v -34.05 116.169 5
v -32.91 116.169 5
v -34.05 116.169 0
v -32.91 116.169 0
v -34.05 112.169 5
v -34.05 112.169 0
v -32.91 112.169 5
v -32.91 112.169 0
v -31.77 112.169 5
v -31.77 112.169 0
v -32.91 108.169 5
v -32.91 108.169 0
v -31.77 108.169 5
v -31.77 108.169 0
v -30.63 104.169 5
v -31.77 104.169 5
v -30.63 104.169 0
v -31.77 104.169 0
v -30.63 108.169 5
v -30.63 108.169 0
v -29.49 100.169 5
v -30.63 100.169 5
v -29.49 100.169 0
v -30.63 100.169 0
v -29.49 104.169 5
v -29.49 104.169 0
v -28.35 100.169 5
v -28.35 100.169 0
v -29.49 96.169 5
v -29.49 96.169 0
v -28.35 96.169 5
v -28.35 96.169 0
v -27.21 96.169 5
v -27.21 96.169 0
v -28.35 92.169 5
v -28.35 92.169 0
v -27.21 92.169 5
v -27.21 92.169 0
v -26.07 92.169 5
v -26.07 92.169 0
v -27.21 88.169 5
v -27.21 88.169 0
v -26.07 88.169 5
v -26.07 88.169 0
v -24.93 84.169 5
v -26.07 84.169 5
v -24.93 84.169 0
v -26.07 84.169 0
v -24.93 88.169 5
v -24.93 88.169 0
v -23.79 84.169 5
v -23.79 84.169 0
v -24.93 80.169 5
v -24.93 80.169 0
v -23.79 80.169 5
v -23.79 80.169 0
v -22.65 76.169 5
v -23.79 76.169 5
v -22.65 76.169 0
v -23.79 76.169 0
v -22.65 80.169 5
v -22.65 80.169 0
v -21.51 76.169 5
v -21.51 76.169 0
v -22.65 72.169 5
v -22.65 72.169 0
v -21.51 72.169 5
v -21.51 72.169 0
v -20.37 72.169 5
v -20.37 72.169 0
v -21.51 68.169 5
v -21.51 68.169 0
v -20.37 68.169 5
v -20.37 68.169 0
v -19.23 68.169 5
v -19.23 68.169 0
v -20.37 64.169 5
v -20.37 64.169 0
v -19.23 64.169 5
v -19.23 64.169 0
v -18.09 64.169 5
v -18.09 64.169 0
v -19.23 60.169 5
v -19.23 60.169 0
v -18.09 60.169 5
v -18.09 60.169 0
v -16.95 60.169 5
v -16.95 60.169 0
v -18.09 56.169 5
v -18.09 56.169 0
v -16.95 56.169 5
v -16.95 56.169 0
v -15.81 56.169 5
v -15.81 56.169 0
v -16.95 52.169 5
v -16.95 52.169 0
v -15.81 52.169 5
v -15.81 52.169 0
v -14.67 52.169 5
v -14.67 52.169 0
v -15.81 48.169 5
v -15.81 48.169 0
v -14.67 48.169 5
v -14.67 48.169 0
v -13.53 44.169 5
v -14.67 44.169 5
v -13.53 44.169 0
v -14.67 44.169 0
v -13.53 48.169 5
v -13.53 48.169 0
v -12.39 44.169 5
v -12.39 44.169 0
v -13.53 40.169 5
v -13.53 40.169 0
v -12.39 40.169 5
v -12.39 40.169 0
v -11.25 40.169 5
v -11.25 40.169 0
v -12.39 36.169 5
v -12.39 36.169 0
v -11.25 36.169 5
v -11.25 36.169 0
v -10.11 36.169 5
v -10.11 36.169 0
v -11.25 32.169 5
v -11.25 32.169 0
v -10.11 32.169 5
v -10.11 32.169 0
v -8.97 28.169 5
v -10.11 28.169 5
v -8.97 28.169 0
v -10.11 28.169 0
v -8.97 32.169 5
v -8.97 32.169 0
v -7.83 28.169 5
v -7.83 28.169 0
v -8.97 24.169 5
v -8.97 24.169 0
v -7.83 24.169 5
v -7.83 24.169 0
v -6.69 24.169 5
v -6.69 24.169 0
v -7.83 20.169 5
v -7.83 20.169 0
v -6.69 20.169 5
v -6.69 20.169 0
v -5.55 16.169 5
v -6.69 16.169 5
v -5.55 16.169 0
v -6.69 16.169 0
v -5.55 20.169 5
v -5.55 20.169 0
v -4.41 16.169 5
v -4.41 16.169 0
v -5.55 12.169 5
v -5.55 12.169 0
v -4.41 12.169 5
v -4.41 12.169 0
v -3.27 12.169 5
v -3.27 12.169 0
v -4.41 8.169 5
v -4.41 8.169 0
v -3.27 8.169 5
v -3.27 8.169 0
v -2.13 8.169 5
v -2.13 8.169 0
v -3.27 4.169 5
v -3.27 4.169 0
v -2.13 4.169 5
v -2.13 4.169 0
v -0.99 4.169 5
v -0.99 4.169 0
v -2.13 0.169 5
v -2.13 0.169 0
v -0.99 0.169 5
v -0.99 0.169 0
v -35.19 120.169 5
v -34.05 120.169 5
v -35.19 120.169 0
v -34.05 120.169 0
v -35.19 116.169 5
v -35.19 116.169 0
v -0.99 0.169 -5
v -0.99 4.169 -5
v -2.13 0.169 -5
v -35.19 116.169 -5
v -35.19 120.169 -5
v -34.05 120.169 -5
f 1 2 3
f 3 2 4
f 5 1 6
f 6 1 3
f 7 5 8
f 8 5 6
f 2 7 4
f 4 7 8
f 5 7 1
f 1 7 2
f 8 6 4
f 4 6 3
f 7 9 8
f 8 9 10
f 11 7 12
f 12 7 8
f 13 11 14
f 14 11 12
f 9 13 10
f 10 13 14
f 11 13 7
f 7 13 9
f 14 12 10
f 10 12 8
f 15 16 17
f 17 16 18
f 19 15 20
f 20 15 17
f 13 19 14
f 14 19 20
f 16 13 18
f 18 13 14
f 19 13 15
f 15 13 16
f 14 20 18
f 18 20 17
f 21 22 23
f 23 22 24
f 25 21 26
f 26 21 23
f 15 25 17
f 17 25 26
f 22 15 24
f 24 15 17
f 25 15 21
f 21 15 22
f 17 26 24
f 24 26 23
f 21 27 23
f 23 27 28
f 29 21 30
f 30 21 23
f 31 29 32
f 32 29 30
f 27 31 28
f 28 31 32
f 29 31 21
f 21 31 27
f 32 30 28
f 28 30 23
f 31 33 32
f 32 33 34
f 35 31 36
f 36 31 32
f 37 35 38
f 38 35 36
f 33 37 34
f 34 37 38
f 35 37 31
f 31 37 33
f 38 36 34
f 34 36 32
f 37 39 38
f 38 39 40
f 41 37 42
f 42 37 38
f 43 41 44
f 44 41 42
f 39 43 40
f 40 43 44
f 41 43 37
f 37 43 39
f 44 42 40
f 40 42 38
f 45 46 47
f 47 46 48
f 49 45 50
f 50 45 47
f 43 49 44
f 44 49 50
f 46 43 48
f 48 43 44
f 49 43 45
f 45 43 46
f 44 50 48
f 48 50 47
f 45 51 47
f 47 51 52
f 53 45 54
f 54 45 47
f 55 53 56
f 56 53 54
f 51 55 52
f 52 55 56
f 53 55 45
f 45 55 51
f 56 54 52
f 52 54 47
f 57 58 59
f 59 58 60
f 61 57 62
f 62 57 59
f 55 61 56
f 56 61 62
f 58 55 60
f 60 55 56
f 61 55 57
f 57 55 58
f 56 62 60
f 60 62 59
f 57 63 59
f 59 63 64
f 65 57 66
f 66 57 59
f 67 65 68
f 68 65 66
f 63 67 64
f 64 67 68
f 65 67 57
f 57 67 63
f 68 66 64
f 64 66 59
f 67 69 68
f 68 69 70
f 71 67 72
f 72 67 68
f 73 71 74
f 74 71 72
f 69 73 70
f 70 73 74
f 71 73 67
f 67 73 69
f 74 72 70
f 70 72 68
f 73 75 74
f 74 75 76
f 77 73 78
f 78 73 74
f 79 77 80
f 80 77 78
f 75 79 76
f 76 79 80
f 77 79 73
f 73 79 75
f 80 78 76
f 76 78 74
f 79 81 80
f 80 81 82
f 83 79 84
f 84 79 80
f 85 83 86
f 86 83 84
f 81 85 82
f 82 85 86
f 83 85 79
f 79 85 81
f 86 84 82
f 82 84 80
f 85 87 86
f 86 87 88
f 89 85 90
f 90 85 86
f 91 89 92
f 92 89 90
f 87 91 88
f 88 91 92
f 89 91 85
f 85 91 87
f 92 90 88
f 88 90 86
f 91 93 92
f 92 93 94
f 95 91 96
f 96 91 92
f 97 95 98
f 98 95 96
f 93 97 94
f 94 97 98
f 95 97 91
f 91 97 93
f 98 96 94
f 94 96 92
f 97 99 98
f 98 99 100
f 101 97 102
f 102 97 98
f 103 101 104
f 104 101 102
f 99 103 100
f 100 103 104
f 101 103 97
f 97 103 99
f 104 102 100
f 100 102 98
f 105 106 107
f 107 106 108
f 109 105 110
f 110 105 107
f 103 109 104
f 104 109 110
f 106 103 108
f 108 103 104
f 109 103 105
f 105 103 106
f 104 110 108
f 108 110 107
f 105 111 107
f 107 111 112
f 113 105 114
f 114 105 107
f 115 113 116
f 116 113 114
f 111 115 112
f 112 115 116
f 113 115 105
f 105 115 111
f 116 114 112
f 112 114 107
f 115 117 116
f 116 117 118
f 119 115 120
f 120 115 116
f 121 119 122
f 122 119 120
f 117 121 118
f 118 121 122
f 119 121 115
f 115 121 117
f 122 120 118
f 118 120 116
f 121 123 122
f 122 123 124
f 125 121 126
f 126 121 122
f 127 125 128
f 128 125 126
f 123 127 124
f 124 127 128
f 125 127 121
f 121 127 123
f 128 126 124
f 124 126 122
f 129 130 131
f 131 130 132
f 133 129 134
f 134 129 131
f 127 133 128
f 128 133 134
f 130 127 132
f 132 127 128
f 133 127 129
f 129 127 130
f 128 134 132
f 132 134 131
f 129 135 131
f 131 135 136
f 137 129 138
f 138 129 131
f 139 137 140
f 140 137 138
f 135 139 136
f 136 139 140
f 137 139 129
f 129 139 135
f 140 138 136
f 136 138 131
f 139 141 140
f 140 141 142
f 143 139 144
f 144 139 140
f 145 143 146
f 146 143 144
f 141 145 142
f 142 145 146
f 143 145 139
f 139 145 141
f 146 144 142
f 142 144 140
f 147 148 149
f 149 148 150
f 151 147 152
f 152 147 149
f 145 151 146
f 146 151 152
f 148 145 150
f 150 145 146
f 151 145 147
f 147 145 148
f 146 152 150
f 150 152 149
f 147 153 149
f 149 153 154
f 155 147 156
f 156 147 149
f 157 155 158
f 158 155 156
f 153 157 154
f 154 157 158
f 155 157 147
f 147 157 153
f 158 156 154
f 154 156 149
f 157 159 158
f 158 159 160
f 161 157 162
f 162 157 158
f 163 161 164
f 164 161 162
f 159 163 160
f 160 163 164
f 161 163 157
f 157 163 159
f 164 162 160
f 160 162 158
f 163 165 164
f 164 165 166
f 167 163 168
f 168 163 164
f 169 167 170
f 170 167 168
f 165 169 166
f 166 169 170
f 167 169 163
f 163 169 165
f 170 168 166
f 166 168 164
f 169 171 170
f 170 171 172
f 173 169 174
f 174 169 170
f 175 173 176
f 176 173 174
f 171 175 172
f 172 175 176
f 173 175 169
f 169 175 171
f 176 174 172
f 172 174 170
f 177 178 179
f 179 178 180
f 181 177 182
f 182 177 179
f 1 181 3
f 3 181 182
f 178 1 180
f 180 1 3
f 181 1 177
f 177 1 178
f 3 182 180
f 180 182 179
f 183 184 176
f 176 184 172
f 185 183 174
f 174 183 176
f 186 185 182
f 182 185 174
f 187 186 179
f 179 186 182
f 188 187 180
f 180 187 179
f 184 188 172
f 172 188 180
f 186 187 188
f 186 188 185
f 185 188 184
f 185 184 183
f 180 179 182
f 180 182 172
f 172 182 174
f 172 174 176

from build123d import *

# Parameters (mm, degrees)
SKETCH2_W              = 1.139995489
SKETCH2_H              = 4
BOSS_EXTRUDE1_DEPTH    = 5
SKETCH2_W_2            = 1.14
BOSS_EXTRUDE1_2_DEPTH  = 5
BOSS_EXTRUDE1_3_DEPTH  = 5
BOSS_EXTRUDE1_4_DEPTH  = 5
BOSS_EXTRUDE1_5_DEPTH  = 5
BOSS_EXTRUDE1_6_DEPTH  = 5
BOSS_EXTRUDE1_7_DEPTH  = 5
BOSS_EXTRUDE1_8_DEPTH  = 5
BOSS_EXTRUDE1_9_DEPTH  = 5
BOSS_EXTRUDE1_10_DEPTH = 5
BOSS_EXTRUDE1_11_DEPTH = 5
BOSS_EXTRUDE1_12_DEPTH = 5
BOSS_EXTRUDE1_13_DEPTH = 5
BOSS_EXTRUDE1_14_DEPTH = 5
BOSS_EXTRUDE1_15_DEPTH = 5
BOSS_EXTRUDE1_16_DEPTH = 5
BOSS_EXTRUDE1_17_DEPTH = 5
BOSS_EXTRUDE1_18_DEPTH = 5
BOSS_EXTRUDE1_19_DEPTH = 5
BOSS_EXTRUDE1_20_DEPTH = 5
BOSS_EXTRUDE1_21_DEPTH = 5
BOSS_EXTRUDE1_22_DEPTH = 5
BOSS_EXTRUDE1_23_DEPTH = 5
BOSS_EXTRUDE1_24_DEPTH = 5
BOSS_EXTRUDE1_25_DEPTH = 5
BOSS_EXTRUDE1_26_DEPTH = 5
BOSS_EXTRUDE1_27_DEPTH = 5
BOSS_EXTRUDE1_28_DEPTH = 5
BOSS_EXTRUDE1_29_DEPTH = 5
BOSS_EXTRUDE1_30_DEPTH = 5
BOSS_EXTRUDE3_DEPTH    = 5


with BuildPart() as part:
    # Sketch2 → Boss-Extrude1 (new body)
    with BuildSketch(Plane.XY):
        with Locations((-1.560223433, 2.169459459)):
            Rectangle(SKETCH2_W, SKETCH2_H)
    extrude(amount=BOSS_EXTRUDE1_DEPTH)


with BuildPart() as body_2:
    # Sketch2 → Boss-Extrude1 2 (new body)
    with BuildSketch(Plane.XY):
        with Locations((-34.620225688, 118.169459459)):
            Rectangle(SKETCH2_W_2, SKETCH2_H)
    extrude(amount=BOSS_EXTRUDE1_2_DEPTH)


with BuildPart() as body_3:
    # Sketch2 → Boss-Extrude1 3 (new body)
    with BuildSketch(Plane.XY):
        with Locations((-33.480225688, 114.169459459)):
            Rectangle(SKETCH2_W_2, SKETCH2_H)
    extrude(amount=BOSS_EXTRUDE1_3_DEPTH)


with BuildPart() as body_4:
    # Sketch2 → Boss-Extrude1 4 (new body)
    with BuildSketch(Plane.XY):
        with Locations((-32.340225688, 110.169459459)):
            Rectangle(SKETCH2_W_2, SKETCH2_H)
    extrude(amount=BOSS_EXTRUDE1_4_DEPTH)


with BuildPart() as body_5:
    # Sketch2 → Boss-Extrude1 5 (new body)
    with BuildSketch(Plane.XY):
        with Locations((-31.200225688, 106.169459459)):
            Rectangle(SKETCH2_W_2, SKETCH2_H)
    extrude(amount=BOSS_EXTRUDE1_5_DEPTH)


with BuildPart() as body_6:
    # Sketch2 → Boss-Extrude1 6 (new body)
    with BuildSketch(Plane.XY):
        with Locations((-30.060225688, 102.169459459)):
            Rectangle(SKETCH2_W_2, SKETCH2_H)
    extrude(amount=BOSS_EXTRUDE1_6_DEPTH)


with BuildPart() as body_7:
    # Sketch2 → Boss-Extrude1 7 (new body)
    with BuildSketch(Plane.XY):
        with Locations((-28.920225688, 98.169459459)):
            Rectangle(SKETCH2_W_2, SKETCH2_H)
    extrude(amount=BOSS_EXTRUDE1_7_DEPTH)


with BuildPart() as body_8:
    # Sketch2 → Boss-Extrude1 8 (new body)
    with BuildSketch(Plane.XY):
        with Locations((-27.780225688, 94.169459459)):
            Rectangle(SKETCH2_W_2, SKETCH2_H)
    extrude(amount=BOSS_EXTRUDE1_8_DEPTH)


with BuildPart() as body_9:
    # Sketch2 → Boss-Extrude1 9 (new body)
    with BuildSketch(Plane.XY):
        with Locations((-26.640225688, 90.169459459)):
            Rectangle(SKETCH2_W_2, SKETCH2_H)
    extrude(amount=BOSS_EXTRUDE1_9_DEPTH)


with BuildPart() as body_10:
    # Sketch2 → Boss-Extrude1 10 (new body)
    with BuildSketch(Plane.XY):
        with Locations((-25.500225688, 86.169459459)):
            Rectangle(SKETCH2_W_2, SKETCH2_H)
    extrude(amount=BOSS_EXTRUDE1_10_DEPTH)


with BuildPart() as body_11:
    # Sketch2 → Boss-Extrude1 11 (new body)
    with BuildSketch(Plane.XY):
        with Locations((-24.360225688, 82.169459459)):
            Rectangle(SKETCH2_W_2, SKETCH2_H)
    extrude(amount=BOSS_EXTRUDE1_11_DEPTH)


with BuildPart() as body_12:
    # Sketch2 → Boss-Extrude1 12 (new body)
    with BuildSketch(Plane.XY):
        with Locations((-23.220225688, 78.169459459)):
            Rectangle(SKETCH2_W_2, SKETCH2_H)
    extrude(amount=BOSS_EXTRUDE1_12_DEPTH)


with BuildPart() as body_13:
    # Sketch2 → Boss-Extrude1 13 (new body)
    with BuildSketch(Plane.XY):
        with Locations((-22.080225688, 74.169459459)):
            Rectangle(SKETCH2_W_2, SKETCH2_H)
    extrude(amount=BOSS_EXTRUDE1_13_DEPTH)


with BuildPart() as body_14:
    # Sketch2 → Boss-Extrude1 14 (new body)
    with BuildSketch(Plane.XY):
        with Locations((-20.940225688, 70.169459459)):
            Rectangle(SKETCH2_W_2, SKETCH2_H)
    extrude(amount=BOSS_EXTRUDE1_14_DEPTH)


with BuildPart() as body_15:
    # Sketch2 → Boss-Extrude1 15 (new body)
    with BuildSketch(Plane.XY):
        with Locations((-19.800225688, 66.169459459)):
            Rectangle(SKETCH2_W_2, SKETCH2_H)
    extrude(amount=BOSS_EXTRUDE1_15_DEPTH)


with BuildPart() as body_16:
    # Sketch2 → Boss-Extrude1 16 (new body)
    with BuildSketch(Plane.XY):
        with Locations((-18.660225688, 62.169459459)):
            Rectangle(SKETCH2_W_2, SKETCH2_H)
    extrude(amount=BOSS_EXTRUDE1_16_DEPTH)


with BuildPart() as body_17:
    # Sketch2 → Boss-Extrude1 17 (new body)
    with BuildSketch(Plane.XY):
        with Locations((-17.520225688, 58.169459459)):
            Rectangle(SKETCH2_W_2, SKETCH2_H)
    extrude(amount=BOSS_EXTRUDE1_17_DEPTH)


with BuildPart() as body_18:
    # Sketch2 → Boss-Extrude1 18 (new body)
    with BuildSketch(Plane.XY):
        with Locations((-16.380225688, 54.169459459)):
            Rectangle(SKETCH2_W_2, SKETCH2_H)
    extrude(amount=BOSS_EXTRUDE1_18_DEPTH)


with BuildPart() as body_19:
    # Sketch2 → Boss-Extrude1 19 (new body)
    with BuildSketch(Plane.XY):
        with Locations((-15.240225688, 50.169459459)):
            Rectangle(SKETCH2_W_2, SKETCH2_H)
    extrude(amount=BOSS_EXTRUDE1_19_DEPTH)


with BuildPart() as body_20:
    # Sketch2 → Boss-Extrude1 20 (new body)
    with BuildSketch(Plane.XY):
        with Locations((-14.100225688, 46.169459459)):
            Rectangle(SKETCH2_W_2, SKETCH2_H)
    extrude(amount=BOSS_EXTRUDE1_20_DEPTH)


with BuildPart() as body_21:
    # Sketch2 → Boss-Extrude1 21 (new body)
    with BuildSketch(Plane.XY):
        with Locations((-12.960225688, 42.169459459)):
            Rectangle(SKETCH2_W_2, SKETCH2_H)
    extrude(amount=BOSS_EXTRUDE1_21_DEPTH)


with BuildPart() as body_22:
    # Sketch2 → Boss-Extrude1 22 (new body)
    with BuildSketch(Plane.XY):
        with Locations((-11.820225688, 38.169459459)):
            Rectangle(SKETCH2_W_2, SKETCH2_H)
    extrude(amount=BOSS_EXTRUDE1_22_DEPTH)


with BuildPart() as body_23:
    # Sketch2 → Boss-Extrude1 23 (new body)
    with BuildSketch(Plane.XY):
        with Locations((-10.680225688, 34.169459459)):
            Rectangle(SKETCH2_W_2, SKETCH2_H)
    extrude(amount=BOSS_EXTRUDE1_23_DEPTH)


with BuildPart() as body_24:
    # Sketch2 → Boss-Extrude1 24 (new body)
    with BuildSketch(Plane.XY):
        with Locations((-9.540225688, 30.169459459)):
            Rectangle(SKETCH2_W_2, SKETCH2_H)
    extrude(amount=BOSS_EXTRUDE1_24_DEPTH)


with BuildPart() as body_25:
    # Sketch2 → Boss-Extrude1 25 (new body)
    with BuildSketch(Plane.XY):
        with Locations((-8.400225688, 26.169459459)):
            Rectangle(SKETCH2_W_2, SKETCH2_H)
    extrude(amount=BOSS_EXTRUDE1_25_DEPTH)


with BuildPart() as body_26:
    # Sketch2 → Boss-Extrude1 26 (new body)
    with BuildSketch(Plane.XY):
        with Locations((-7.260225688, 22.169459459)):
            Rectangle(SKETCH2_W_2, SKETCH2_H)
    extrude(amount=BOSS_EXTRUDE1_26_DEPTH)


with BuildPart() as body_27:
    # Sketch2 → Boss-Extrude1 27 (new body)
    with BuildSketch(Plane.XY):
        with Locations((-6.120225688, 18.169459459)):
            Rectangle(SKETCH2_W_2, SKETCH2_H)
    extrude(amount=BOSS_EXTRUDE1_27_DEPTH)


with BuildPart() as body_28:
    # Sketch2 → Boss-Extrude1 28 (new body)
    with BuildSketch(Plane.XY):
        with Locations((-4.980225688, 14.169459459)):
            Rectangle(SKETCH2_W_2, SKETCH2_H)
    extrude(amount=BOSS_EXTRUDE1_28_DEPTH)


with BuildPart() as body_29:
    # Sketch2 → Boss-Extrude1 29 (new body)
    with BuildSketch(Plane.XY):
        Polygon((-3.270221177, 4.169459459), (-2.130221177, 4.169459459), (-2.130221177, 8.169459459), (-3.270225688, 8.169459459), align=None)
    extrude(amount=BOSS_EXTRUDE1_29_DEPTH)


with BuildPart() as body_30:
    # Sketch2 → Boss-Extrude1 30 (new body)
    with BuildSketch(Plane.XY):
        with Locations((-3.840225688, 10.169459459)):
            Rectangle(SKETCH2_W_2, SKETCH2_H)
    extrude(amount=BOSS_EXTRUDE1_30_DEPTH)


with BuildPart() as body_31:
    # Sketch3 → Boss-Extrude3 (new body)
    with BuildSketch(Plane(origin=(0, 0, 0), x_dir=(-1, 0, 0), z_dir=(0, 0, -1))):
        Polygon((0.990225688, 4.169459459), (34.050225688, 120.169459459), (35.190225688, 120.169459459), (35.190221177, 116.169459459), (2.130225688, 0.169459459), (0.990225688, 0.169459459), align=None)
    extrude(amount=BOSS_EXTRUDE3_DEPTH)


solid = Compound([part.part, body_2.part, body_3.part, body_4.part, body_5.part, body_6.part, body_7.part, body_8.part, body_9.part, body_10.part, body_11.part, body_12.part, body_13.part, body_14.part, body_15.part, body_16.part, body_17.part, body_18.part, body_19.part, body_20.part, body_21.part, body_22.part, body_23.part, body_24.part, body_25.part, body_26.part, body_27.part, body_28.part, body_29.part, body_30.part, body_31.part])
